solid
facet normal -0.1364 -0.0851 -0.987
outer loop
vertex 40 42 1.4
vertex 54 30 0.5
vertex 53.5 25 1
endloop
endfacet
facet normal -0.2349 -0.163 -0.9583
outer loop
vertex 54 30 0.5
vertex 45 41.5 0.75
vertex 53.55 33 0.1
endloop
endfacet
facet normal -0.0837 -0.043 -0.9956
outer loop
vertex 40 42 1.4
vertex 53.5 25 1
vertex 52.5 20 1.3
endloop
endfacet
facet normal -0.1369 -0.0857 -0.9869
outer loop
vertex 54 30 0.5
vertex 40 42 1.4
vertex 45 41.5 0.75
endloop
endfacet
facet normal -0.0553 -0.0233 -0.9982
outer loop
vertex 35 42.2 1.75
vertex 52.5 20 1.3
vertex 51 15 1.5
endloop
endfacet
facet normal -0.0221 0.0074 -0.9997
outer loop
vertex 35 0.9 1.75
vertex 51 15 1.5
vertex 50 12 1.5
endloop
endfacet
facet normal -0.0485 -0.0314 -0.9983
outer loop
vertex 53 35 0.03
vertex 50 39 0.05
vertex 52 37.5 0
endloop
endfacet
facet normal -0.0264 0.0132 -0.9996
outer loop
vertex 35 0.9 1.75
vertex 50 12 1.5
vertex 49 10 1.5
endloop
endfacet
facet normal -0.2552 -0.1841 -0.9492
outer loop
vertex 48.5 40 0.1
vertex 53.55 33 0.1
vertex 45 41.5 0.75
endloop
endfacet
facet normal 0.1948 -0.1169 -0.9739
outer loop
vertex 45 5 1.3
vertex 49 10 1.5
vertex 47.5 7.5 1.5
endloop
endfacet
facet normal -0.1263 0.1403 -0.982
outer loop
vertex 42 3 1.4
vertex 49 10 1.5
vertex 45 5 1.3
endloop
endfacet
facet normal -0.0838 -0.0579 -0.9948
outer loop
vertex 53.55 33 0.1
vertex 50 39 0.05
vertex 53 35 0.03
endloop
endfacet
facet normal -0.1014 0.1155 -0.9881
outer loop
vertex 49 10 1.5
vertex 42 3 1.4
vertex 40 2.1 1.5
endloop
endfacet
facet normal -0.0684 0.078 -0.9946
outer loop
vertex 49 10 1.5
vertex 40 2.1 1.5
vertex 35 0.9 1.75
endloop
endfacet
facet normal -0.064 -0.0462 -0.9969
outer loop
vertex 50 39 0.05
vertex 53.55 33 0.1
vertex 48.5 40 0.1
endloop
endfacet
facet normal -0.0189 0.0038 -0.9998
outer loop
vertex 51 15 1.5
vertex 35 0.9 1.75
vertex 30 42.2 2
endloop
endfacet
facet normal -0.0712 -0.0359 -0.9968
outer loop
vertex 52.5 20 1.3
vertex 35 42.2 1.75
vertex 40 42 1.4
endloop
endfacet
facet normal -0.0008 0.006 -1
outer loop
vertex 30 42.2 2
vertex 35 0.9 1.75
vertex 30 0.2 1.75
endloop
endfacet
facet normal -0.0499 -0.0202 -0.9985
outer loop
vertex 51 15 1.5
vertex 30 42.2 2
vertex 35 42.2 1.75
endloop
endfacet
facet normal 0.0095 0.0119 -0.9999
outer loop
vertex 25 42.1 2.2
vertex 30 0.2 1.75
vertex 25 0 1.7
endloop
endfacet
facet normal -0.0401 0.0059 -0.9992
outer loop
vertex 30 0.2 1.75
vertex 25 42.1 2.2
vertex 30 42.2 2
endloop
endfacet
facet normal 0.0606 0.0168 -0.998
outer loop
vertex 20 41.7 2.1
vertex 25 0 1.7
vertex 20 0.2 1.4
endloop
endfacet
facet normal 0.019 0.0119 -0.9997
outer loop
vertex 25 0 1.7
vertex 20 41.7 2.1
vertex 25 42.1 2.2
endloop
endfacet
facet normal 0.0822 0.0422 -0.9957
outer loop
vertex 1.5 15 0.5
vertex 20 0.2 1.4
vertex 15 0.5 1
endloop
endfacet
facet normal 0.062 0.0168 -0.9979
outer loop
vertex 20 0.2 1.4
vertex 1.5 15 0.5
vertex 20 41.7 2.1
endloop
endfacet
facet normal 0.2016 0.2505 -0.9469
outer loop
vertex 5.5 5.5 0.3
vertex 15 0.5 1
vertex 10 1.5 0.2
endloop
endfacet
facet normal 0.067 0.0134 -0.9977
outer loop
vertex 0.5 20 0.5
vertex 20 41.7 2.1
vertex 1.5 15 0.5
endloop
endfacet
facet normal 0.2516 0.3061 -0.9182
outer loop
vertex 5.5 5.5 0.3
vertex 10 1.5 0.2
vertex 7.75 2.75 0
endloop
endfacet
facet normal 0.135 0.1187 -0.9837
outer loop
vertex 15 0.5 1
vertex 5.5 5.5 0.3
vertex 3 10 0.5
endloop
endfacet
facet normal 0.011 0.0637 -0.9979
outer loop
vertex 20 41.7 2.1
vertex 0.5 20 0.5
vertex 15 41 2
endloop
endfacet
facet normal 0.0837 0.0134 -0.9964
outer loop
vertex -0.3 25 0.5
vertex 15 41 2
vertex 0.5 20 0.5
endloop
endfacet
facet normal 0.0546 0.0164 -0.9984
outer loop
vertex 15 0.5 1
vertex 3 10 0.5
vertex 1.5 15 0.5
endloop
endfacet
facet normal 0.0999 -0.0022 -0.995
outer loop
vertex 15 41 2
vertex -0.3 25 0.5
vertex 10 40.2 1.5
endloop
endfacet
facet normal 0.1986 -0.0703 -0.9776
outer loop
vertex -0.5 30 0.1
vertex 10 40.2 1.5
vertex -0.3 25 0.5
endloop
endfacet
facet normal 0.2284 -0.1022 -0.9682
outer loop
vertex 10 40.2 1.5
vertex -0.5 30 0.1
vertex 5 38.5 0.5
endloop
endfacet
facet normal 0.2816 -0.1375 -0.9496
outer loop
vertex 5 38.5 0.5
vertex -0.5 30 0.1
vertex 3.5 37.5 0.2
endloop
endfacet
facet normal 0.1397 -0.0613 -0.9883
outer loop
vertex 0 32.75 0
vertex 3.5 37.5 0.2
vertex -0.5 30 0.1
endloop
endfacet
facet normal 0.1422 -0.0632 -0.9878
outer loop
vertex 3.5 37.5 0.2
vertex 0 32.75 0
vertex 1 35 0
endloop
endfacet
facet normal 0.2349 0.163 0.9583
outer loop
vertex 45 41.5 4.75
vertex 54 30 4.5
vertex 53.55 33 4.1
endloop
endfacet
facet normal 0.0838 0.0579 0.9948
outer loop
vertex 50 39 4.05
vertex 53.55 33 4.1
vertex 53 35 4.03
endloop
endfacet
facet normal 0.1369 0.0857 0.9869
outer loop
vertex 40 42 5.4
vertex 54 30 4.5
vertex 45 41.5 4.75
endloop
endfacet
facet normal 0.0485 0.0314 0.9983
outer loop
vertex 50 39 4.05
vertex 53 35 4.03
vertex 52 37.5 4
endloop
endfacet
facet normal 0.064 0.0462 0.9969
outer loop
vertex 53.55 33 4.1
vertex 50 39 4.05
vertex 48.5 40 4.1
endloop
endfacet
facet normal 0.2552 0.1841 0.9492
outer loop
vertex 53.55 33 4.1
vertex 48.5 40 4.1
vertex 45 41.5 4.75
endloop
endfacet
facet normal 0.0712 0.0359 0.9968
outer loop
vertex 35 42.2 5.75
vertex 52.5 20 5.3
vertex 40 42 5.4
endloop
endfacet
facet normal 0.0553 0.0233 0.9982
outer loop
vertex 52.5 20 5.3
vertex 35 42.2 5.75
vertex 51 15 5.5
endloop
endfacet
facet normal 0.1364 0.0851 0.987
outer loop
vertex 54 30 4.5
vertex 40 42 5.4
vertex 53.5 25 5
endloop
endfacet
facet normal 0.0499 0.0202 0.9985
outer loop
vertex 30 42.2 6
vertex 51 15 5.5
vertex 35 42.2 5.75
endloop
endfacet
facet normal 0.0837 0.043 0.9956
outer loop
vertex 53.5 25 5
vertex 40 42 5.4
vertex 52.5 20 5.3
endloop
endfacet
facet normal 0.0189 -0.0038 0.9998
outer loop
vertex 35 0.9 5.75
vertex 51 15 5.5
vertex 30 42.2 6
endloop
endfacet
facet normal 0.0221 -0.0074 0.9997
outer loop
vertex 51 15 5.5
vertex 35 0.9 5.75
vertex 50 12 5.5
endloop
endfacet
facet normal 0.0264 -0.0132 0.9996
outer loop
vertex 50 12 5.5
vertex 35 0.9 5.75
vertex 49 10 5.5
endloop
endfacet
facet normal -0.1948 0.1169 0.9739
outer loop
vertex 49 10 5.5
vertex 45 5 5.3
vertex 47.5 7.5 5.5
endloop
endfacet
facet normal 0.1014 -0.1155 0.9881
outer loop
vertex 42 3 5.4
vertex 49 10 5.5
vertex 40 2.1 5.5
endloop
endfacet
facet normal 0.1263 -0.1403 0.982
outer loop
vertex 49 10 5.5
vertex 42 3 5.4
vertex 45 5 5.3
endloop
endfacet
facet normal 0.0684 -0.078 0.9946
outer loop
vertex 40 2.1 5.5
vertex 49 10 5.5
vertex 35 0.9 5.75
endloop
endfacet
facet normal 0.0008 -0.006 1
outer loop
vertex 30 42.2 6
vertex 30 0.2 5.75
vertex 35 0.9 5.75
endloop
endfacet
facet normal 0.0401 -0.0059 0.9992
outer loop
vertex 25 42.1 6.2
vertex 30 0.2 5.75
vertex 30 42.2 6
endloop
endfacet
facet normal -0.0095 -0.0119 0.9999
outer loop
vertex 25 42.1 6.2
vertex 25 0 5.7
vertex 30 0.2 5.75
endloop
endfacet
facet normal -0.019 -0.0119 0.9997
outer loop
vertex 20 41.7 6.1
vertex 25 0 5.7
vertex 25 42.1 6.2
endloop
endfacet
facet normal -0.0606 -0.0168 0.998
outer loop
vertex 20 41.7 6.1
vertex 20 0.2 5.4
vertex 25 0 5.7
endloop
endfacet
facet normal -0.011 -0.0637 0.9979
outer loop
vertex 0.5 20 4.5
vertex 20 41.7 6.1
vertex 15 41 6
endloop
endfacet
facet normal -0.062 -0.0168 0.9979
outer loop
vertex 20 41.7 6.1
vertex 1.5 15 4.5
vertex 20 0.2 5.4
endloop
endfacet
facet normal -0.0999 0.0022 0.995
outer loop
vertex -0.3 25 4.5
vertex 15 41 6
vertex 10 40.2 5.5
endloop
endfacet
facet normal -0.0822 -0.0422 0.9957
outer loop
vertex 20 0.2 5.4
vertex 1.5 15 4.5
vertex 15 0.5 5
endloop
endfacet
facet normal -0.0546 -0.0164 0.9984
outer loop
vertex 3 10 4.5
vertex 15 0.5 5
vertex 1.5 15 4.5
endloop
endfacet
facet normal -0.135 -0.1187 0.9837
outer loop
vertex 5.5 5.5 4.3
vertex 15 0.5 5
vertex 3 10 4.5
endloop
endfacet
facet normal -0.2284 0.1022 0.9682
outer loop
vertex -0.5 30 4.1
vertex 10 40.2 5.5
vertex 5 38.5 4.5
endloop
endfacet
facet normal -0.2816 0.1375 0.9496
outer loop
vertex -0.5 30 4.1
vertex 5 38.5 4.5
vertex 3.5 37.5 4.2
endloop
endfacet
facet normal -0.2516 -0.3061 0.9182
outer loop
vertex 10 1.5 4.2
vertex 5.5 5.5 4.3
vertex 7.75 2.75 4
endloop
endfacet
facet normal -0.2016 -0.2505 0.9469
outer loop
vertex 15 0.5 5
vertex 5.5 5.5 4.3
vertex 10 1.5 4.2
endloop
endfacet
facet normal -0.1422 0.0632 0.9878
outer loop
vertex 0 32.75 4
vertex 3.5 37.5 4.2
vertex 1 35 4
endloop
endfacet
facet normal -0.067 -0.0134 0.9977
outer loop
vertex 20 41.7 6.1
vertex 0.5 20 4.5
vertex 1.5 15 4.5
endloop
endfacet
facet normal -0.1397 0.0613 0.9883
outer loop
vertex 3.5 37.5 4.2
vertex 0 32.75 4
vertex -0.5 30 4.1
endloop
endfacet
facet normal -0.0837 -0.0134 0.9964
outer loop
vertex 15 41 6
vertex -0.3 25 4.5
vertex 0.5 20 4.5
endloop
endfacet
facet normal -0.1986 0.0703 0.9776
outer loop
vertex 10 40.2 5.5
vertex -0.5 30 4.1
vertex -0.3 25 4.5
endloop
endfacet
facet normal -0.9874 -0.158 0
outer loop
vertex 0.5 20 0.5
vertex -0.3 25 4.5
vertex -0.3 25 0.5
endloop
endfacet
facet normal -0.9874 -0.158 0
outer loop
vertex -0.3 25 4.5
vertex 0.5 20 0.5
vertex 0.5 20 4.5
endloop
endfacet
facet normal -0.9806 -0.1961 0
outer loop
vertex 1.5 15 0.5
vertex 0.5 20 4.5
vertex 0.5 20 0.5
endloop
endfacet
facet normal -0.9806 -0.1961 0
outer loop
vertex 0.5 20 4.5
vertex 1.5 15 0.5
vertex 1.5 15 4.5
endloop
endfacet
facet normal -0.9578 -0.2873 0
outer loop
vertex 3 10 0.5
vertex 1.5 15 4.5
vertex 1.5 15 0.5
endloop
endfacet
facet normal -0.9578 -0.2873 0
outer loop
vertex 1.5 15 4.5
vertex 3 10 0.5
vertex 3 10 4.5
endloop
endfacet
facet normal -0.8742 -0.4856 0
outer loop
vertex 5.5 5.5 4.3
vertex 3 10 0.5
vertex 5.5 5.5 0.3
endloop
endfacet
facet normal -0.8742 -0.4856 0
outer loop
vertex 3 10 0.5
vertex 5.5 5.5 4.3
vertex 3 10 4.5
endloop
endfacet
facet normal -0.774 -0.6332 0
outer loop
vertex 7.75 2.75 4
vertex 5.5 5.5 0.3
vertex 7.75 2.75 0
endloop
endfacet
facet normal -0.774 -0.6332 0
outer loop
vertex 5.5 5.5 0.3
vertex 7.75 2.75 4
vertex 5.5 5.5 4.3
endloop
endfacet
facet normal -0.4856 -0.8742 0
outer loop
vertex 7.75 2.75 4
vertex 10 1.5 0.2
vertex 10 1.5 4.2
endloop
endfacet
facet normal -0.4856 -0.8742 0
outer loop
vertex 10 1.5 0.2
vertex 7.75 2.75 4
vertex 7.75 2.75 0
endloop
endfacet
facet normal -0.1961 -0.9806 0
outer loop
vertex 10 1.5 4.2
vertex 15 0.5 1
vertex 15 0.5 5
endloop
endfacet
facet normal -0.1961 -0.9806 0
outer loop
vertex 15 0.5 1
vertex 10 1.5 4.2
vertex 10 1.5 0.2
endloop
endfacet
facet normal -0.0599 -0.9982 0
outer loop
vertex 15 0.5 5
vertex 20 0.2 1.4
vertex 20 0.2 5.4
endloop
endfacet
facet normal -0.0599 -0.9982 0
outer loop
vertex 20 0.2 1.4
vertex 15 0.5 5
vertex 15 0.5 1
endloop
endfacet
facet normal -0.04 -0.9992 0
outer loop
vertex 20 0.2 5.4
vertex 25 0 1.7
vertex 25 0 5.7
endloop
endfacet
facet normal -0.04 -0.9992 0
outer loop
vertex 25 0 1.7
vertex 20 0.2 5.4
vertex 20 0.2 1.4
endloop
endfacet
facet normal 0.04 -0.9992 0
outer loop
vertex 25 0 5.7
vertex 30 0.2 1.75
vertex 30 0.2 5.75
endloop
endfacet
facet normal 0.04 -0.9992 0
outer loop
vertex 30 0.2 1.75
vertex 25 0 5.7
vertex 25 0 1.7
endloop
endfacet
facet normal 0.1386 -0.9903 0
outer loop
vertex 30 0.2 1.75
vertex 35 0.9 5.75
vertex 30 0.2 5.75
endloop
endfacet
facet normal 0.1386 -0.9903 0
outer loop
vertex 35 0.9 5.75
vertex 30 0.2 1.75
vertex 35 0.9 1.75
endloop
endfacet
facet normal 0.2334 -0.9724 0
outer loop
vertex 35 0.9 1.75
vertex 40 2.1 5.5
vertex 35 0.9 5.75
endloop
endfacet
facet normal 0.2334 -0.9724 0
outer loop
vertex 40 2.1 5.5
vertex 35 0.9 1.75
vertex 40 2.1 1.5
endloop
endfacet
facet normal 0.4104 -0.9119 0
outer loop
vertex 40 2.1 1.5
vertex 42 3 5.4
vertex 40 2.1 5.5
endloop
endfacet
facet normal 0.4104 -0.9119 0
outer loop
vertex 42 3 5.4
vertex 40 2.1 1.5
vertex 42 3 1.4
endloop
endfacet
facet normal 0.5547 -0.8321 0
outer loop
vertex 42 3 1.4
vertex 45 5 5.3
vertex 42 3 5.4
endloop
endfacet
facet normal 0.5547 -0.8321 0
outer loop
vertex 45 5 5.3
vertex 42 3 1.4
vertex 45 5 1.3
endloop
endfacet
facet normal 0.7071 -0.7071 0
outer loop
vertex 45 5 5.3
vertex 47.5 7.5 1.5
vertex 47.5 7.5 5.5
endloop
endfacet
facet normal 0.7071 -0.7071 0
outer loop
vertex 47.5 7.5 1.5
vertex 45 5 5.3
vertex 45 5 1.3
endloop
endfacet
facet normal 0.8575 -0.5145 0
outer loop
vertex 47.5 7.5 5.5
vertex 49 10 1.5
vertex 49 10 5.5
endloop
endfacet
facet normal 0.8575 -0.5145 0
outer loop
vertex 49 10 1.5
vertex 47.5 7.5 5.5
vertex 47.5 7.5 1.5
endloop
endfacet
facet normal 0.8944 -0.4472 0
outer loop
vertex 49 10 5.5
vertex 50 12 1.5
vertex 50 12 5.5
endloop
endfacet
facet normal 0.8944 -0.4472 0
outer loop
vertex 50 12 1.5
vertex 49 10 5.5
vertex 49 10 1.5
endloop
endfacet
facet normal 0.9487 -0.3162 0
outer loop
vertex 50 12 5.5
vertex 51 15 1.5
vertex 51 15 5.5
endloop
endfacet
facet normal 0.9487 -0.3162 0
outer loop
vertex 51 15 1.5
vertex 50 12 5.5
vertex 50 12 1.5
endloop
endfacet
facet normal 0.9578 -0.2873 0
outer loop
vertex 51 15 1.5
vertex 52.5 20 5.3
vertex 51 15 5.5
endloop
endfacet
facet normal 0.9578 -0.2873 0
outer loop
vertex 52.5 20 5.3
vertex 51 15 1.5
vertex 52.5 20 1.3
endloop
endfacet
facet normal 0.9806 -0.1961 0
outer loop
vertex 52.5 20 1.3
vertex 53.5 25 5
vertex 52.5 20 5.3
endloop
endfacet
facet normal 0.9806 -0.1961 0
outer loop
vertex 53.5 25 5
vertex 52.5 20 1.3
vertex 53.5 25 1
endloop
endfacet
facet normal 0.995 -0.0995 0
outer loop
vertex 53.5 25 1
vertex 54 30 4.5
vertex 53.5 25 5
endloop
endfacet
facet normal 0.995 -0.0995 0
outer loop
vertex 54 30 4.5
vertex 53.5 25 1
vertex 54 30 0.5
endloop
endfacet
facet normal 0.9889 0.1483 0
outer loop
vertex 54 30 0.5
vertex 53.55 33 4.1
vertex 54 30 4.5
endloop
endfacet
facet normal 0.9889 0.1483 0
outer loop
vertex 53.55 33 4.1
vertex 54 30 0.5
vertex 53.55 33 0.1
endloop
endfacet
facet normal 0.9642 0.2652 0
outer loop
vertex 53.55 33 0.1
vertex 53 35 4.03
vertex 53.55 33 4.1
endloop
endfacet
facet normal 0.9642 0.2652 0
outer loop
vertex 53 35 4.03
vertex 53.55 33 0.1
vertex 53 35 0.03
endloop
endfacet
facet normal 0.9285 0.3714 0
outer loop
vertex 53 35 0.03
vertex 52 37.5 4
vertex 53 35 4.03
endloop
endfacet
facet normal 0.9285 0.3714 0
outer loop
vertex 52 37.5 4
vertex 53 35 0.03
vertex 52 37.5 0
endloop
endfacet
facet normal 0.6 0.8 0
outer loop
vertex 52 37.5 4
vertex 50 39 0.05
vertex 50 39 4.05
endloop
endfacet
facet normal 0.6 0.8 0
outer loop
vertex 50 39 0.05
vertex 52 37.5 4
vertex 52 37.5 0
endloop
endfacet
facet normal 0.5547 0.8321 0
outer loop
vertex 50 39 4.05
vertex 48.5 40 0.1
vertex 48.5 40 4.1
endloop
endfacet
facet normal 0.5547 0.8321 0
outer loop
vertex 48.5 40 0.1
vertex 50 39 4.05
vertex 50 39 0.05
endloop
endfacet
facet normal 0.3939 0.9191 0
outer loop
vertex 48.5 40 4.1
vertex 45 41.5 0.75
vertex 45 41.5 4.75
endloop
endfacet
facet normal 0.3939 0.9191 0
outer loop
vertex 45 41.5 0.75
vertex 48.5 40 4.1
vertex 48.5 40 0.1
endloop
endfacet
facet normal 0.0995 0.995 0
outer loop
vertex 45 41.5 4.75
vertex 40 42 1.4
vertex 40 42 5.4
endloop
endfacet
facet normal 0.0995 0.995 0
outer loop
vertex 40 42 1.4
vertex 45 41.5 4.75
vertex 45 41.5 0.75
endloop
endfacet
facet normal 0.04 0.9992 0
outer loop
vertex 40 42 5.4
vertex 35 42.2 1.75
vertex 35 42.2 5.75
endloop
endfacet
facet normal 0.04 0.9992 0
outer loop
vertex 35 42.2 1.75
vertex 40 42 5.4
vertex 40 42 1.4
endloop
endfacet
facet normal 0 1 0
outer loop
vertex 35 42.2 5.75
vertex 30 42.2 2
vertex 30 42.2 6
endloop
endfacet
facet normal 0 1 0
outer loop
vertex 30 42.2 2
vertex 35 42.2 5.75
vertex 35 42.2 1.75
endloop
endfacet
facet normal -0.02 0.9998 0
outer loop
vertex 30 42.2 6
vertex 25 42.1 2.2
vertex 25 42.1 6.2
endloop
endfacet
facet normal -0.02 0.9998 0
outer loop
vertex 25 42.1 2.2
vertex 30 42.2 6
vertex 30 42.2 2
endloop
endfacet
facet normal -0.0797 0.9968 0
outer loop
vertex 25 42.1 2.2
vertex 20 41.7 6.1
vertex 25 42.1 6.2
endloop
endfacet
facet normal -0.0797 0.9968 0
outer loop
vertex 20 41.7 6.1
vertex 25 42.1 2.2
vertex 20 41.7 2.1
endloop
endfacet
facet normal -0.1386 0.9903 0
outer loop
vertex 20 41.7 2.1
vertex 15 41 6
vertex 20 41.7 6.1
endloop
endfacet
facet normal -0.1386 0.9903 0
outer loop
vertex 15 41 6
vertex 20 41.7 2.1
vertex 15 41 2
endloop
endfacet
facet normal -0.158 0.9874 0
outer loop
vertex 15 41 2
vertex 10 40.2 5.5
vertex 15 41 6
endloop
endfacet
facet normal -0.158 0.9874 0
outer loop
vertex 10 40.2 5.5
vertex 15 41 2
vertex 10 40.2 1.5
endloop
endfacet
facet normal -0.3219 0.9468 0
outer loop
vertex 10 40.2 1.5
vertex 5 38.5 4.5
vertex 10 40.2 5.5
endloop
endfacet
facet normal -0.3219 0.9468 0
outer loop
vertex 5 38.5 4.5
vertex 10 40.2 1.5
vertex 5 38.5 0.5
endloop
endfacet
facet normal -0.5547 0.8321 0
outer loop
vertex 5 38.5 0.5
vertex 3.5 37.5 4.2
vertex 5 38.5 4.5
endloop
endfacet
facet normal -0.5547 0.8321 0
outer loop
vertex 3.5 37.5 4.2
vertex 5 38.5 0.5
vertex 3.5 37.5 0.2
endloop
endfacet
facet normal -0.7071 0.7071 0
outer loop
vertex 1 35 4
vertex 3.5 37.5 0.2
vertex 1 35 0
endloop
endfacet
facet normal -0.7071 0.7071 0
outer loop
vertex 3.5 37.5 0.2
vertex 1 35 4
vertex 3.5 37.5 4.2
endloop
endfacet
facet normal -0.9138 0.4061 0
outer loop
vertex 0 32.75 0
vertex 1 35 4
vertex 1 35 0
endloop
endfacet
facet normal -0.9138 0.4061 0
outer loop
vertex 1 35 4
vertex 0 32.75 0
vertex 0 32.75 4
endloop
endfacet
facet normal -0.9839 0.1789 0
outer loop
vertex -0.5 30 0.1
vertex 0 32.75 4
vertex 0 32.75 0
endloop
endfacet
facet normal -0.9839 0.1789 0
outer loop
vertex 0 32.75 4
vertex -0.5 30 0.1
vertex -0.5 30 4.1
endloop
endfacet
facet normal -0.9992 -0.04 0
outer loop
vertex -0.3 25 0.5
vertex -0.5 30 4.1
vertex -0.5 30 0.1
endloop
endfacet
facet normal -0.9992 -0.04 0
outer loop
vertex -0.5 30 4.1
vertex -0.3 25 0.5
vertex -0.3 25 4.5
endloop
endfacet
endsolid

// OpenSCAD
polyhedron(
    points=[
        [-0.3000000000, 25.0000000000, 0.5000000000],
        [0.5000000000, 20.0000000000, 0.5000000000],
        [1.5000000000, 15.0000000000, 0.5000000000],
        [3.0000000000, 10.0000000000, 0.5000000000],
        [5.5000000000, 5.5000000000, 0.3000000000],
        [7.7500000000, 2.7500000000, 0.0000000000],
        [10.0000000000, 1.5000000000, 0.2000000000],
        [15.0000000000, 0.5000000000, 1.0000000000],
        [20.0000000000, 0.2000000000, 1.4000000000],
        [25.0000000000, 0.0000000000, 1.7000000000],
        [30.0000000000, 0.2000000000, 1.7500000000],
        [35.0000000000, 0.9000000000, 1.7500000000],
        [40.0000000000, 2.1000000000, 1.5000000000],
        [42.0000000000, 3.0000000000, 1.4000000000],
        [45.0000000000, 5.0000000000, 1.3000000000],
        [47.5000000000, 7.5000000000, 1.5000000000],
        [49.0000000000, 10.0000000000, 1.5000000000],
        [50.0000000000, 12.0000000000, 1.5000000000],
        [51.0000000000, 15.0000000000, 1.5000000000],
        [52.5000000000, 20.0000000000, 1.3000000000],
        [53.5000000000, 25.0000000000, 1.0000000000],
        [54.0000000000, 30.0000000000, 0.5000000000],
        [53.5500000000, 33.0000000000, 0.1000000000],
        [53.0000000000, 35.0000000000, 0.0300000000],
        [52.0000000000, 37.5000000000, 0.0000000000],
        [50.0000000000, 39.0000000000, 0.0500000000],
        [48.5000000000, 40.0000000000, 0.1000000000],
        [45.0000000000, 41.5000000000, 0.7500000000],
        [40.0000000000, 42.0000000000, 1.4000000000],
        [35.0000000000, 42.2000000000, 1.7500000000],
        [30.0000000000, 42.2000000000, 2.0000000000],
        [25.0000000000, 42.1000000000, 2.2000000000],
        [20.0000000000, 41.7000000000, 2.1000000000],
        [15.0000000000, 41.0000000000, 2.0000000000],
        [10.0000000000, 40.2000000000, 1.5000000000],
        [5.0000000000, 38.5000000000, 0.5000000000],
        [3.5000000000, 37.5000000000, 0.2000000000],
        [1.0000000000, 35.0000000000, 0.0000000000],
        [0.0000000000, 32.7500000000, 0.0000000000],
        [-0.5000000000, 30.0000000000, 0.1000000000],
        [-0.3000000000, 25.0000000000, 4.5000000000],
        [0.5000000000, 20.0000000000, 4.5000000000],
        [1.5000000000, 15.0000000000, 4.5000000000],
        [3.0000000000, 10.0000000000, 4.5000000000],
        [5.5000000000, 5.5000000000, 4.3000000000],
        [7.7500000000, 2.7500000000, 4.0000000000],
        [10.0000000000, 1.5000000000, 4.2000000000],
        [15.0000000000, 0.5000000000, 5.0000000000],
        [20.0000000000, 0.2000000000, 5.4000000000],
        [25.0000000000, 0.0000000000, 5.7000000000],
        [30.0000000000, 0.2000000000, 5.7500000000],
        [35.0000000000, 0.9000000000, 5.7500000000],
        [40.0000000000, 2.1000000000, 5.5000000000],
        [42.0000000000, 3.0000000000, 5.4000000000],
        [45.0000000000, 5.0000000000, 5.3000000000],
        [47.5000000000, 7.5000000000, 5.5000000000],
        [49.0000000000, 10.0000000000, 5.5000000000],
        [50.0000000000, 12.0000000000, 5.5000000000],
        [51.0000000000, 15.0000000000, 5.5000000000],
        [52.5000000000, 20.0000000000, 5.3000000000],
        [53.5000000000, 25.0000000000, 5.0000000000],
        [54.0000000000, 30.0000000000, 4.5000000000],
        [53.5500000000, 33.0000000000, 4.1000000000],
        [53.0000000000, 35.0000000000, 4.0300000000],
        [52.0000000000, 37.5000000000, 4.0000000000],
        [50.0000000000, 39.0000000000, 4.0500000000],
        [48.5000000000, 40.0000000000, 4.1000000000],
        [45.0000000000, 41.5000000000, 4.7500000000],
        [40.0000000000, 42.0000000000, 5.4000000000],
        [35.0000000000, 42.2000000000, 5.7500000000],
        [30.0000000000, 42.2000000000, 6.0000000000],
        [25.0000000000, 42.1000000000, 6.2000000000],
        [20.0000000000, 41.7000000000, 6.1000000000],
        [15.0000000000, 41.0000000000, 6.0000000000],
        [10.0000000000, 40.2000000000, 5.5000000000],
        [5.0000000000, 38.5000000000, 4.5000000000],
        [3.5000000000, 37.5000000000, 4.2000000000],
        [1.0000000000, 35.0000000000, 4.0000000000],
        [0.0000000000, 32.7500000000, 4.0000000000],
        [-0.5000000000, 30.0000000000, 4.1000000000],
    ],
    faces=[
        [0,1,2,3,4,5,6,7,8,9,10,11,12,13,14,15,16,17,18,19,20,21,22,23,24,25,26,27,28,29,30,31,32,33,34,35,36,37,38,39,],
        [79,78,77,76,75,74,73,72,71,70,69,68,67,66,65,64,63,62,61,60,59,58,57,56,55,54,53,52,51,50,49,48,47,46,45,44,43,42,41,40,],
        [40,41,1,0,],
        [41,42,2,1,],
        [42,43,3,2,],
        [43,44,4,3,],
        [44,45,5,4,],
        [45,46,6,5,],
        [46,47,7,6,],
        [47,48,8,7,],
        [48,49,9,8,],
        [49,50,10,9,],
        [50,51,11,10,],
        [51,52,12,11,],
        [52,53,13,12,],
        [53,54,14,13,],
        [54,55,15,14,],
        [55,56,16,15,],
        [56,57,17,16,],
        [57,58,18,17,],
        [58,59,19,18,],
        [59,60,20,19,],
        [60,61,21,20,],
        [61,62,22,21,],
        [62,63,23,22,],
        [63,64,24,23,],
        [64,65,25,24,],
        [65,66,26,25,],
        [66,67,27,26,],
        [67,68,28,27,],
        [68,69,29,28,],
        [69,70,30,29,],
        [70,71,31,30,],
        [71,72,32,31,],
        [72,73,33,32,],
        [73,74,34,33,],
        [74,75,35,34,],
        [75,76,36,35,],
        [76,77,37,36,],
        [77,78,38,37,],
        [78,79,39,38,],
        [79,40,0,39,],
    ]
);
